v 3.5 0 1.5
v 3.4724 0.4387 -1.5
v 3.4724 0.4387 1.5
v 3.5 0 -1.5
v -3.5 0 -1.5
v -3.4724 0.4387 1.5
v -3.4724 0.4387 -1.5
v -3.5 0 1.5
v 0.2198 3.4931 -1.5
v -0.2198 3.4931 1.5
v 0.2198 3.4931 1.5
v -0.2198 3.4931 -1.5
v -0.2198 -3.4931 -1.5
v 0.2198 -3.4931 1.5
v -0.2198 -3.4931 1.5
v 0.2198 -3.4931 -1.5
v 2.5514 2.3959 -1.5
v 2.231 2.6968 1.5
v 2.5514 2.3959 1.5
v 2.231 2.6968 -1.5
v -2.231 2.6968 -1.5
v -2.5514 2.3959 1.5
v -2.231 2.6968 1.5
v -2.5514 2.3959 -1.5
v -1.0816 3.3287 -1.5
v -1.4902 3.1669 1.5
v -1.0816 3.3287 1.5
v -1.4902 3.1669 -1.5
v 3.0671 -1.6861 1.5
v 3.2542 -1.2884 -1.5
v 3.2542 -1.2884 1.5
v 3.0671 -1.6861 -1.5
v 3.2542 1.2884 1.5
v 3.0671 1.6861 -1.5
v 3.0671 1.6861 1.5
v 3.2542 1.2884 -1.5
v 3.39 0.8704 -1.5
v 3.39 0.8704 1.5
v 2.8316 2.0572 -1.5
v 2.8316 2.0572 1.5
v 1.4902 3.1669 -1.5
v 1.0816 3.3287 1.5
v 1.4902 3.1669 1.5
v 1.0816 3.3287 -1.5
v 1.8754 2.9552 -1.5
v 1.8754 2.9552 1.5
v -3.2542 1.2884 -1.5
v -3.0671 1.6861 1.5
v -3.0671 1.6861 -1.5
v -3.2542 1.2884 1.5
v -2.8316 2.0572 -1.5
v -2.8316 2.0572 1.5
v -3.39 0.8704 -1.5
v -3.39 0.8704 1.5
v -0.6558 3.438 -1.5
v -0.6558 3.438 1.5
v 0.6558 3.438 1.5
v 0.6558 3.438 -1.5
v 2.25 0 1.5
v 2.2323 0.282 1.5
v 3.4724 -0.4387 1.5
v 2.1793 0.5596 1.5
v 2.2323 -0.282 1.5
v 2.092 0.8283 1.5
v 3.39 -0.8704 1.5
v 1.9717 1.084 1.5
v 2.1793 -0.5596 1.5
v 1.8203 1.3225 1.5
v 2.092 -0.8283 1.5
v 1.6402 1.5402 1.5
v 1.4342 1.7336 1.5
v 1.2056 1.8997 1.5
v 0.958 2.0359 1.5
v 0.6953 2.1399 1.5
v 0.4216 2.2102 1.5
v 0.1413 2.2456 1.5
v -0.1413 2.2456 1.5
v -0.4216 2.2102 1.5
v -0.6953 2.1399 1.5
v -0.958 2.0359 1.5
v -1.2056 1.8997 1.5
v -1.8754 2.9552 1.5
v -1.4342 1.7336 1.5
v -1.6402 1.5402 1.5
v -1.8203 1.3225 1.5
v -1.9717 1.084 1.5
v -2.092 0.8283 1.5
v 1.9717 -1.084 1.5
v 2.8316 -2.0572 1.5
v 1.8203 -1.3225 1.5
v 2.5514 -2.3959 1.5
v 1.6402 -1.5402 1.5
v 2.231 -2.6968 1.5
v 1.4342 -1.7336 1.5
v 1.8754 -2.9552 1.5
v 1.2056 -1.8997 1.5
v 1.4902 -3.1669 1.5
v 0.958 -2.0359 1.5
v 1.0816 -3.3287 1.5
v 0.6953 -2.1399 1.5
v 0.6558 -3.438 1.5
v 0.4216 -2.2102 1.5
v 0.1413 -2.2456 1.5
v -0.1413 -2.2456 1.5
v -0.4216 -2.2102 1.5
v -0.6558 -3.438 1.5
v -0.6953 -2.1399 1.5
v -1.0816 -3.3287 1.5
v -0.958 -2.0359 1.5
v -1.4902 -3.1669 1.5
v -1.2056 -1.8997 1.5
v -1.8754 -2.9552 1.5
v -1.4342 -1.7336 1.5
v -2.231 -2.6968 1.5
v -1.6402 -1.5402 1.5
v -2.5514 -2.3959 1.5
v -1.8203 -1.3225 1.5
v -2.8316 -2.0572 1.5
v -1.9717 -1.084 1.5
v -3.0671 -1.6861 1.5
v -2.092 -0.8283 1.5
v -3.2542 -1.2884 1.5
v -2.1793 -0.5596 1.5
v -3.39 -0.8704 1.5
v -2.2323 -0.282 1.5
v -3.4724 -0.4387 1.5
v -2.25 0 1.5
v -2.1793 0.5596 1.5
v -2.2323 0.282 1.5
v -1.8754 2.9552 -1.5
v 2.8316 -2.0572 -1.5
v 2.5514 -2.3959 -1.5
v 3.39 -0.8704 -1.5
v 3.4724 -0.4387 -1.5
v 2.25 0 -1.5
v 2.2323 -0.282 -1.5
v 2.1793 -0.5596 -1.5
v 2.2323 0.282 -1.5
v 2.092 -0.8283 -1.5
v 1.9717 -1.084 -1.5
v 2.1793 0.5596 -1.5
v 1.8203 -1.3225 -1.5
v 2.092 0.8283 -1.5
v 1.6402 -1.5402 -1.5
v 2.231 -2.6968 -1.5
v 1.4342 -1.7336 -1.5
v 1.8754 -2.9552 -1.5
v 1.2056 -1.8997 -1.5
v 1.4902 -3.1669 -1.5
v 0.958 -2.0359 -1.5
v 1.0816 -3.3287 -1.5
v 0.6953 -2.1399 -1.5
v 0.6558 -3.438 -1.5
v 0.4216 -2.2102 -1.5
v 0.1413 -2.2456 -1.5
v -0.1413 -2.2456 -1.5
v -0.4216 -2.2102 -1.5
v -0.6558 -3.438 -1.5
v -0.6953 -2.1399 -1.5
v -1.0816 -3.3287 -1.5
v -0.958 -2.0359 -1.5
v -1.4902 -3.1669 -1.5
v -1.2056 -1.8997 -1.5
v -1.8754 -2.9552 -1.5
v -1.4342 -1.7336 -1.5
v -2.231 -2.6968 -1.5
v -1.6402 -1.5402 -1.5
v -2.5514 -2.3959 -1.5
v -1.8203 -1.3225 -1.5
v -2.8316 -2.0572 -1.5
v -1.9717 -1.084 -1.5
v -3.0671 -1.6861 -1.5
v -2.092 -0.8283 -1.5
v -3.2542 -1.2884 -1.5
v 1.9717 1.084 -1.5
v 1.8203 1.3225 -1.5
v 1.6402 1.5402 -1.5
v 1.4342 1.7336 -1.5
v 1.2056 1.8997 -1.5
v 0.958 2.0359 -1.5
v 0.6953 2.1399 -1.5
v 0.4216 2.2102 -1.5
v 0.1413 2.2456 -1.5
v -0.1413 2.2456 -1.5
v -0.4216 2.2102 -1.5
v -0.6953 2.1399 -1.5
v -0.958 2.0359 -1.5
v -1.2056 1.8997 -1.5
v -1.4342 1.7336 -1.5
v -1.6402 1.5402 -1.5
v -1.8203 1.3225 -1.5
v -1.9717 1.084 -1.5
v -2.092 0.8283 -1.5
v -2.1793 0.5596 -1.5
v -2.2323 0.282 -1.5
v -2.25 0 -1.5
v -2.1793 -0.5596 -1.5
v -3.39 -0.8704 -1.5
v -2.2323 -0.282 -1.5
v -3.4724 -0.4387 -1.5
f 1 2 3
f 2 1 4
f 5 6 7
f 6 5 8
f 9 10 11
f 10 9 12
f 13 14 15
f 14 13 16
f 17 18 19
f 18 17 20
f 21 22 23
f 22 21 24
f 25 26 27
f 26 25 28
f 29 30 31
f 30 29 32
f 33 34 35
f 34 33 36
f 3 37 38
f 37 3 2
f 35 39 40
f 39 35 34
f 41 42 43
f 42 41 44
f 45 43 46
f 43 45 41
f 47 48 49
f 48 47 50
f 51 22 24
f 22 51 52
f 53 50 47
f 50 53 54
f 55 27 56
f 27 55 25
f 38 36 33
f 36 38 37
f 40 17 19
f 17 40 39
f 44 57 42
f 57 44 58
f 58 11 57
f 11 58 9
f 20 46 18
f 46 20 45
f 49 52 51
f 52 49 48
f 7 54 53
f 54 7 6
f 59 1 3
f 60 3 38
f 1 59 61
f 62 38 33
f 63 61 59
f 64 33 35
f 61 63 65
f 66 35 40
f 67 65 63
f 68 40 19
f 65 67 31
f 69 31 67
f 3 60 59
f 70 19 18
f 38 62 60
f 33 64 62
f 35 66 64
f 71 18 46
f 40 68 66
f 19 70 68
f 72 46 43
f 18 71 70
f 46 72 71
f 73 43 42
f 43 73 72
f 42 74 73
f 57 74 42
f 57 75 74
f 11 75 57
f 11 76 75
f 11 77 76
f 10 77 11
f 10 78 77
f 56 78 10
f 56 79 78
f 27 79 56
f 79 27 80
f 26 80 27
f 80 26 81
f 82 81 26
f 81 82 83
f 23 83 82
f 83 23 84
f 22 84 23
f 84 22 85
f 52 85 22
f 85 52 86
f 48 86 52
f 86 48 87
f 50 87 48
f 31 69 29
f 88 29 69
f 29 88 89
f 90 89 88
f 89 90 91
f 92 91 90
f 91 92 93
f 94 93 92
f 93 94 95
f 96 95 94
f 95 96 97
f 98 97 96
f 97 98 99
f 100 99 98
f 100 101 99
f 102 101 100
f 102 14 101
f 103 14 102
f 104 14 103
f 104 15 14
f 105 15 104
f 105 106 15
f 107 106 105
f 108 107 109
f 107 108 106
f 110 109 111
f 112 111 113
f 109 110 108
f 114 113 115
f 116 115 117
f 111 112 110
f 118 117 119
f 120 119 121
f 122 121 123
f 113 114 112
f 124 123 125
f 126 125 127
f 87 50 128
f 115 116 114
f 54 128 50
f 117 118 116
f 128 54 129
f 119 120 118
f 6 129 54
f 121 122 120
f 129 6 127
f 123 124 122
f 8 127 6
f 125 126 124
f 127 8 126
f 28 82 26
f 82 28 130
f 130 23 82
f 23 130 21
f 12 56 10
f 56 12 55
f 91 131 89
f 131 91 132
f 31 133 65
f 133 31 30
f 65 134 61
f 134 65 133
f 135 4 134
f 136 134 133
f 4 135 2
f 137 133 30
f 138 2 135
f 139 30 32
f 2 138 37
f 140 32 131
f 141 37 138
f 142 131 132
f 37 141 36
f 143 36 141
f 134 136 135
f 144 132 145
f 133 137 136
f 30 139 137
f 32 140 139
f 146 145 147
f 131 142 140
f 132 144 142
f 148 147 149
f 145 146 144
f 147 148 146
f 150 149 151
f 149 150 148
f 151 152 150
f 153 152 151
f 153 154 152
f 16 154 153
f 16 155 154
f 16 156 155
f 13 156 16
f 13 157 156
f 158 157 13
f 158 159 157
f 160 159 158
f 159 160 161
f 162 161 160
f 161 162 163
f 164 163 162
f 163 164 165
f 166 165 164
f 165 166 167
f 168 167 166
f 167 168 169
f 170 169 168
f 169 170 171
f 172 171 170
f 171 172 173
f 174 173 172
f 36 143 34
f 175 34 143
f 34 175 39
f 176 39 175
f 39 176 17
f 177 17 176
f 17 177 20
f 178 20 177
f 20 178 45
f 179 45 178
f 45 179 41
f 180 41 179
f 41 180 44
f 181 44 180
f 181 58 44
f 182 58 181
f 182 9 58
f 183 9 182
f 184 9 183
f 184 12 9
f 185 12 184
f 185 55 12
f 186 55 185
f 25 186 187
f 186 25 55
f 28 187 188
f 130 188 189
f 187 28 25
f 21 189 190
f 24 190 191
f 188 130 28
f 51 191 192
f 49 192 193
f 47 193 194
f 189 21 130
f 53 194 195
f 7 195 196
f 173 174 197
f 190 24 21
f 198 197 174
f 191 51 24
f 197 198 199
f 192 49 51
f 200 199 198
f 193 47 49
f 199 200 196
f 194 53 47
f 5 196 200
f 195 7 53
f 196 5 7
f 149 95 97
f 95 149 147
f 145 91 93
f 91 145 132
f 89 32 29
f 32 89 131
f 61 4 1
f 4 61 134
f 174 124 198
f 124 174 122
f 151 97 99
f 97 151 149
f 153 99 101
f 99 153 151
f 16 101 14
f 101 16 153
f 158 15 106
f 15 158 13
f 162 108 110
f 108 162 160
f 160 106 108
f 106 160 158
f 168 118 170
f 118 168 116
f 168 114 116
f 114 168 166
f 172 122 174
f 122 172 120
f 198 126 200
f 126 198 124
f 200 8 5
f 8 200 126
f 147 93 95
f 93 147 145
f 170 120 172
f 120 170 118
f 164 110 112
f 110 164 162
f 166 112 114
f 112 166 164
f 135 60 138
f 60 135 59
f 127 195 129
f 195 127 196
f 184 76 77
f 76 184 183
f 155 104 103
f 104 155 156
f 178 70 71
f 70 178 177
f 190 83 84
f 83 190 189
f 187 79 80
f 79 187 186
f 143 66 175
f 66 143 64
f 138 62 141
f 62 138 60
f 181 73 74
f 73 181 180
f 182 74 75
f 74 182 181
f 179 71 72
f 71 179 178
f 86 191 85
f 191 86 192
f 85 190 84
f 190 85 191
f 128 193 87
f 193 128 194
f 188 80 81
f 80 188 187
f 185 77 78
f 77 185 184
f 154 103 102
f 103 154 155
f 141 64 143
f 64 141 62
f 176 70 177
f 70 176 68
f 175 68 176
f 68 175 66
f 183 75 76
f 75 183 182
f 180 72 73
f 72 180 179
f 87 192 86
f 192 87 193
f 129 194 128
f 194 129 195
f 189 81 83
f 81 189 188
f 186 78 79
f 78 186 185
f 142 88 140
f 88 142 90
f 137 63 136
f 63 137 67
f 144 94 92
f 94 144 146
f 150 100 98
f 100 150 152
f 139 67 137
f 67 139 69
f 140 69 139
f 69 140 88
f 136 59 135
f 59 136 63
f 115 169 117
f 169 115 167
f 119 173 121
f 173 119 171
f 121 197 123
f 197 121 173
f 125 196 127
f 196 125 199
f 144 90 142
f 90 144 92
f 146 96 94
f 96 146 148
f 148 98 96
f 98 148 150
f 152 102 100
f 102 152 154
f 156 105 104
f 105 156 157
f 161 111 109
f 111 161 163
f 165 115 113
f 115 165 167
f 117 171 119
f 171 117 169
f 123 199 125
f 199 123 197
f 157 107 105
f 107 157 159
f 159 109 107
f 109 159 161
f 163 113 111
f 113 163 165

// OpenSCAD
$fn = 50;


difference() {
	union() {
		translate(v = [0, 0, -1.5000000000]) {
			cylinder(h = 3, r = 3.5000000000);
		}
	}
	union() {
		translate(v = [0, 0, -100.0000000000]) {
			cylinder(h = 200, r = 2.2500000000);
		}
	}
}
